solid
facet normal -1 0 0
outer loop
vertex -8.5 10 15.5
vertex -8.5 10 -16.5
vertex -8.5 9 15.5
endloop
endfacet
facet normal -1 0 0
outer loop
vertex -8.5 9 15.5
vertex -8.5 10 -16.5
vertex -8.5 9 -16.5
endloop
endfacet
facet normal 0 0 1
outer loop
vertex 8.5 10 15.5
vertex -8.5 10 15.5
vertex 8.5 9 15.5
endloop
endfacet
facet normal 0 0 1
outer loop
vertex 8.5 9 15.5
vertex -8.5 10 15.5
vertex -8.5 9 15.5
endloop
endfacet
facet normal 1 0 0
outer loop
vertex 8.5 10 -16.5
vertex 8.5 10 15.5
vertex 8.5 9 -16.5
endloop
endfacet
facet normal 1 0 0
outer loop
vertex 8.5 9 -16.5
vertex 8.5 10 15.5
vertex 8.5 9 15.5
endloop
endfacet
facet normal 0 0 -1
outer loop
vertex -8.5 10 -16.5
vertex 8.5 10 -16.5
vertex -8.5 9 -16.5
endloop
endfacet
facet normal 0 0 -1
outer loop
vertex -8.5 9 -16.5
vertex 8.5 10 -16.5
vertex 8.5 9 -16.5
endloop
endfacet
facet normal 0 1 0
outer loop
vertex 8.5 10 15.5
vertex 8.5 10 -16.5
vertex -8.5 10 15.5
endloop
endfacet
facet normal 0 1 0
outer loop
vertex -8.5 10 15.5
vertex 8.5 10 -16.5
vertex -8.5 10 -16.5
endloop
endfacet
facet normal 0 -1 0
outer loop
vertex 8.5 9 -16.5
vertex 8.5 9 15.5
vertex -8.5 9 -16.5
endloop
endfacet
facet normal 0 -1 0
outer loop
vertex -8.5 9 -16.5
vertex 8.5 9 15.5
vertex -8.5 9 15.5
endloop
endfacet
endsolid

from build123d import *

# Parameters (mm, degrees)
SKETCH_1_W          = 17
SKETCH_1_H          = 33
EXTRUDE_1_DEPTH     = 10
CUT_EXTRUDE_START   = 1
SKETCH_2_W          = 15
SKETCH_2_H          = 32
CUT_EXTRUDE_1_DEPTH = 8
SKETCH_3_R          = 3
CUT_EXTRUDE_2_DEPTH = 22.083168642
CUT_EXTRUDE_START_2 = 9
SKETCH_5_W          = 17
SKETCH_5_H          = 32
CUT_EXTRUDE_3_DEPTH = 8
EXTRUDE_START       = 9
SKETCH_6_W          = 17
SKETCH_6_H          = 32
EXTRUDE_2_DEPTH     = 1
SKETCH_8_W          = 17
SKETCH_8_H          = 33
CUT_EXTRUDE_5_DEPTH = 9
SKETCH_9_W          = 17
SKETCH_9_H          = 1
CUT_EXTRUDE_6_DEPTH = 1


with BuildPart() as part:
    # 스케치1 → 보스-돌출1 (new body)
    with BuildSketch(Plane(origin=(0, 0, 0), x_dir=(1, 0, 0), z_dir=(0, 1, 0))):
        Rectangle(SKETCH_1_W, SKETCH_1_H)
    extrude(amount=EXTRUDE_1_DEPTH)

    # 스케치2 → 컷-돌출1 (cut)
    with BuildSketch(Plane(origin=(0, 0, 0), x_dir=(1, 0, 0), z_dir=(0, 1, 0)).offset(CUT_EXTRUDE_START)):
        with Locations((0, 0.5)):
            Rectangle(SKETCH_2_W, SKETCH_2_H)
    extrude(amount=CUT_EXTRUDE_1_DEPTH, mode=Mode.SUBTRACT)

    # 스케치3 → 컷-돌출2 (cut, through all)
    with BuildSketch(Plane.XY):
        with Locations(Location((0, 6, 0), (0, 0, 90))):
            Circle(SKETCH_3_R)
    extrude(amount=CUT_EXTRUDE_2_DEPTH, mode=Mode.SUBTRACT)

    # 스케치5 → 컷-돌출3 (cut)
    with BuildSketch(Plane(origin=(0, 0, 0), x_dir=(1, 0, 0), z_dir=(0, 1, 0)).offset(CUT_EXTRUDE_START_2)):
        with Locations((0, 0.5)):
            Rectangle(SKETCH_5_W, SKETCH_5_H)
    extrude(amount=CUT_EXTRUDE_3_DEPTH, mode=Mode.SUBTRACT)

    # 스케치8 → 컷-돌출5 (cut)
    with BuildSketch(Plane.XZ):
        Rectangle(SKETCH_8_W, SKETCH_8_H)
    extrude(amount=-CUT_EXTRUDE_5_DEPTH, mode=Mode.SUBTRACT)

    # 스케치9 → 컷-돌출6 (cut)
    with BuildSketch(Plane.XY.offset(16.5)):
        with Locations((0, 9.5)):
            Rectangle(SKETCH_9_W, SKETCH_9_H)
    extrude(amount=-CUT_EXTRUDE_6_DEPTH, mode=Mode.SUBTRACT)


with BuildPart() as body_2:
    # 스케치6 → 보스-돌출2 (new body)
    with BuildSketch(Plane(origin=(0, 0, 0), x_dir=(1, 0, 0), z_dir=(0, 1, 0)).offset(EXTRUDE_START)):
        with Locations((0, 0.5)):
            Rectangle(SKETCH_6_W, SKETCH_6_H)
    extrude(amount=EXTRUDE_2_DEPTH)


solid = body_2.part
